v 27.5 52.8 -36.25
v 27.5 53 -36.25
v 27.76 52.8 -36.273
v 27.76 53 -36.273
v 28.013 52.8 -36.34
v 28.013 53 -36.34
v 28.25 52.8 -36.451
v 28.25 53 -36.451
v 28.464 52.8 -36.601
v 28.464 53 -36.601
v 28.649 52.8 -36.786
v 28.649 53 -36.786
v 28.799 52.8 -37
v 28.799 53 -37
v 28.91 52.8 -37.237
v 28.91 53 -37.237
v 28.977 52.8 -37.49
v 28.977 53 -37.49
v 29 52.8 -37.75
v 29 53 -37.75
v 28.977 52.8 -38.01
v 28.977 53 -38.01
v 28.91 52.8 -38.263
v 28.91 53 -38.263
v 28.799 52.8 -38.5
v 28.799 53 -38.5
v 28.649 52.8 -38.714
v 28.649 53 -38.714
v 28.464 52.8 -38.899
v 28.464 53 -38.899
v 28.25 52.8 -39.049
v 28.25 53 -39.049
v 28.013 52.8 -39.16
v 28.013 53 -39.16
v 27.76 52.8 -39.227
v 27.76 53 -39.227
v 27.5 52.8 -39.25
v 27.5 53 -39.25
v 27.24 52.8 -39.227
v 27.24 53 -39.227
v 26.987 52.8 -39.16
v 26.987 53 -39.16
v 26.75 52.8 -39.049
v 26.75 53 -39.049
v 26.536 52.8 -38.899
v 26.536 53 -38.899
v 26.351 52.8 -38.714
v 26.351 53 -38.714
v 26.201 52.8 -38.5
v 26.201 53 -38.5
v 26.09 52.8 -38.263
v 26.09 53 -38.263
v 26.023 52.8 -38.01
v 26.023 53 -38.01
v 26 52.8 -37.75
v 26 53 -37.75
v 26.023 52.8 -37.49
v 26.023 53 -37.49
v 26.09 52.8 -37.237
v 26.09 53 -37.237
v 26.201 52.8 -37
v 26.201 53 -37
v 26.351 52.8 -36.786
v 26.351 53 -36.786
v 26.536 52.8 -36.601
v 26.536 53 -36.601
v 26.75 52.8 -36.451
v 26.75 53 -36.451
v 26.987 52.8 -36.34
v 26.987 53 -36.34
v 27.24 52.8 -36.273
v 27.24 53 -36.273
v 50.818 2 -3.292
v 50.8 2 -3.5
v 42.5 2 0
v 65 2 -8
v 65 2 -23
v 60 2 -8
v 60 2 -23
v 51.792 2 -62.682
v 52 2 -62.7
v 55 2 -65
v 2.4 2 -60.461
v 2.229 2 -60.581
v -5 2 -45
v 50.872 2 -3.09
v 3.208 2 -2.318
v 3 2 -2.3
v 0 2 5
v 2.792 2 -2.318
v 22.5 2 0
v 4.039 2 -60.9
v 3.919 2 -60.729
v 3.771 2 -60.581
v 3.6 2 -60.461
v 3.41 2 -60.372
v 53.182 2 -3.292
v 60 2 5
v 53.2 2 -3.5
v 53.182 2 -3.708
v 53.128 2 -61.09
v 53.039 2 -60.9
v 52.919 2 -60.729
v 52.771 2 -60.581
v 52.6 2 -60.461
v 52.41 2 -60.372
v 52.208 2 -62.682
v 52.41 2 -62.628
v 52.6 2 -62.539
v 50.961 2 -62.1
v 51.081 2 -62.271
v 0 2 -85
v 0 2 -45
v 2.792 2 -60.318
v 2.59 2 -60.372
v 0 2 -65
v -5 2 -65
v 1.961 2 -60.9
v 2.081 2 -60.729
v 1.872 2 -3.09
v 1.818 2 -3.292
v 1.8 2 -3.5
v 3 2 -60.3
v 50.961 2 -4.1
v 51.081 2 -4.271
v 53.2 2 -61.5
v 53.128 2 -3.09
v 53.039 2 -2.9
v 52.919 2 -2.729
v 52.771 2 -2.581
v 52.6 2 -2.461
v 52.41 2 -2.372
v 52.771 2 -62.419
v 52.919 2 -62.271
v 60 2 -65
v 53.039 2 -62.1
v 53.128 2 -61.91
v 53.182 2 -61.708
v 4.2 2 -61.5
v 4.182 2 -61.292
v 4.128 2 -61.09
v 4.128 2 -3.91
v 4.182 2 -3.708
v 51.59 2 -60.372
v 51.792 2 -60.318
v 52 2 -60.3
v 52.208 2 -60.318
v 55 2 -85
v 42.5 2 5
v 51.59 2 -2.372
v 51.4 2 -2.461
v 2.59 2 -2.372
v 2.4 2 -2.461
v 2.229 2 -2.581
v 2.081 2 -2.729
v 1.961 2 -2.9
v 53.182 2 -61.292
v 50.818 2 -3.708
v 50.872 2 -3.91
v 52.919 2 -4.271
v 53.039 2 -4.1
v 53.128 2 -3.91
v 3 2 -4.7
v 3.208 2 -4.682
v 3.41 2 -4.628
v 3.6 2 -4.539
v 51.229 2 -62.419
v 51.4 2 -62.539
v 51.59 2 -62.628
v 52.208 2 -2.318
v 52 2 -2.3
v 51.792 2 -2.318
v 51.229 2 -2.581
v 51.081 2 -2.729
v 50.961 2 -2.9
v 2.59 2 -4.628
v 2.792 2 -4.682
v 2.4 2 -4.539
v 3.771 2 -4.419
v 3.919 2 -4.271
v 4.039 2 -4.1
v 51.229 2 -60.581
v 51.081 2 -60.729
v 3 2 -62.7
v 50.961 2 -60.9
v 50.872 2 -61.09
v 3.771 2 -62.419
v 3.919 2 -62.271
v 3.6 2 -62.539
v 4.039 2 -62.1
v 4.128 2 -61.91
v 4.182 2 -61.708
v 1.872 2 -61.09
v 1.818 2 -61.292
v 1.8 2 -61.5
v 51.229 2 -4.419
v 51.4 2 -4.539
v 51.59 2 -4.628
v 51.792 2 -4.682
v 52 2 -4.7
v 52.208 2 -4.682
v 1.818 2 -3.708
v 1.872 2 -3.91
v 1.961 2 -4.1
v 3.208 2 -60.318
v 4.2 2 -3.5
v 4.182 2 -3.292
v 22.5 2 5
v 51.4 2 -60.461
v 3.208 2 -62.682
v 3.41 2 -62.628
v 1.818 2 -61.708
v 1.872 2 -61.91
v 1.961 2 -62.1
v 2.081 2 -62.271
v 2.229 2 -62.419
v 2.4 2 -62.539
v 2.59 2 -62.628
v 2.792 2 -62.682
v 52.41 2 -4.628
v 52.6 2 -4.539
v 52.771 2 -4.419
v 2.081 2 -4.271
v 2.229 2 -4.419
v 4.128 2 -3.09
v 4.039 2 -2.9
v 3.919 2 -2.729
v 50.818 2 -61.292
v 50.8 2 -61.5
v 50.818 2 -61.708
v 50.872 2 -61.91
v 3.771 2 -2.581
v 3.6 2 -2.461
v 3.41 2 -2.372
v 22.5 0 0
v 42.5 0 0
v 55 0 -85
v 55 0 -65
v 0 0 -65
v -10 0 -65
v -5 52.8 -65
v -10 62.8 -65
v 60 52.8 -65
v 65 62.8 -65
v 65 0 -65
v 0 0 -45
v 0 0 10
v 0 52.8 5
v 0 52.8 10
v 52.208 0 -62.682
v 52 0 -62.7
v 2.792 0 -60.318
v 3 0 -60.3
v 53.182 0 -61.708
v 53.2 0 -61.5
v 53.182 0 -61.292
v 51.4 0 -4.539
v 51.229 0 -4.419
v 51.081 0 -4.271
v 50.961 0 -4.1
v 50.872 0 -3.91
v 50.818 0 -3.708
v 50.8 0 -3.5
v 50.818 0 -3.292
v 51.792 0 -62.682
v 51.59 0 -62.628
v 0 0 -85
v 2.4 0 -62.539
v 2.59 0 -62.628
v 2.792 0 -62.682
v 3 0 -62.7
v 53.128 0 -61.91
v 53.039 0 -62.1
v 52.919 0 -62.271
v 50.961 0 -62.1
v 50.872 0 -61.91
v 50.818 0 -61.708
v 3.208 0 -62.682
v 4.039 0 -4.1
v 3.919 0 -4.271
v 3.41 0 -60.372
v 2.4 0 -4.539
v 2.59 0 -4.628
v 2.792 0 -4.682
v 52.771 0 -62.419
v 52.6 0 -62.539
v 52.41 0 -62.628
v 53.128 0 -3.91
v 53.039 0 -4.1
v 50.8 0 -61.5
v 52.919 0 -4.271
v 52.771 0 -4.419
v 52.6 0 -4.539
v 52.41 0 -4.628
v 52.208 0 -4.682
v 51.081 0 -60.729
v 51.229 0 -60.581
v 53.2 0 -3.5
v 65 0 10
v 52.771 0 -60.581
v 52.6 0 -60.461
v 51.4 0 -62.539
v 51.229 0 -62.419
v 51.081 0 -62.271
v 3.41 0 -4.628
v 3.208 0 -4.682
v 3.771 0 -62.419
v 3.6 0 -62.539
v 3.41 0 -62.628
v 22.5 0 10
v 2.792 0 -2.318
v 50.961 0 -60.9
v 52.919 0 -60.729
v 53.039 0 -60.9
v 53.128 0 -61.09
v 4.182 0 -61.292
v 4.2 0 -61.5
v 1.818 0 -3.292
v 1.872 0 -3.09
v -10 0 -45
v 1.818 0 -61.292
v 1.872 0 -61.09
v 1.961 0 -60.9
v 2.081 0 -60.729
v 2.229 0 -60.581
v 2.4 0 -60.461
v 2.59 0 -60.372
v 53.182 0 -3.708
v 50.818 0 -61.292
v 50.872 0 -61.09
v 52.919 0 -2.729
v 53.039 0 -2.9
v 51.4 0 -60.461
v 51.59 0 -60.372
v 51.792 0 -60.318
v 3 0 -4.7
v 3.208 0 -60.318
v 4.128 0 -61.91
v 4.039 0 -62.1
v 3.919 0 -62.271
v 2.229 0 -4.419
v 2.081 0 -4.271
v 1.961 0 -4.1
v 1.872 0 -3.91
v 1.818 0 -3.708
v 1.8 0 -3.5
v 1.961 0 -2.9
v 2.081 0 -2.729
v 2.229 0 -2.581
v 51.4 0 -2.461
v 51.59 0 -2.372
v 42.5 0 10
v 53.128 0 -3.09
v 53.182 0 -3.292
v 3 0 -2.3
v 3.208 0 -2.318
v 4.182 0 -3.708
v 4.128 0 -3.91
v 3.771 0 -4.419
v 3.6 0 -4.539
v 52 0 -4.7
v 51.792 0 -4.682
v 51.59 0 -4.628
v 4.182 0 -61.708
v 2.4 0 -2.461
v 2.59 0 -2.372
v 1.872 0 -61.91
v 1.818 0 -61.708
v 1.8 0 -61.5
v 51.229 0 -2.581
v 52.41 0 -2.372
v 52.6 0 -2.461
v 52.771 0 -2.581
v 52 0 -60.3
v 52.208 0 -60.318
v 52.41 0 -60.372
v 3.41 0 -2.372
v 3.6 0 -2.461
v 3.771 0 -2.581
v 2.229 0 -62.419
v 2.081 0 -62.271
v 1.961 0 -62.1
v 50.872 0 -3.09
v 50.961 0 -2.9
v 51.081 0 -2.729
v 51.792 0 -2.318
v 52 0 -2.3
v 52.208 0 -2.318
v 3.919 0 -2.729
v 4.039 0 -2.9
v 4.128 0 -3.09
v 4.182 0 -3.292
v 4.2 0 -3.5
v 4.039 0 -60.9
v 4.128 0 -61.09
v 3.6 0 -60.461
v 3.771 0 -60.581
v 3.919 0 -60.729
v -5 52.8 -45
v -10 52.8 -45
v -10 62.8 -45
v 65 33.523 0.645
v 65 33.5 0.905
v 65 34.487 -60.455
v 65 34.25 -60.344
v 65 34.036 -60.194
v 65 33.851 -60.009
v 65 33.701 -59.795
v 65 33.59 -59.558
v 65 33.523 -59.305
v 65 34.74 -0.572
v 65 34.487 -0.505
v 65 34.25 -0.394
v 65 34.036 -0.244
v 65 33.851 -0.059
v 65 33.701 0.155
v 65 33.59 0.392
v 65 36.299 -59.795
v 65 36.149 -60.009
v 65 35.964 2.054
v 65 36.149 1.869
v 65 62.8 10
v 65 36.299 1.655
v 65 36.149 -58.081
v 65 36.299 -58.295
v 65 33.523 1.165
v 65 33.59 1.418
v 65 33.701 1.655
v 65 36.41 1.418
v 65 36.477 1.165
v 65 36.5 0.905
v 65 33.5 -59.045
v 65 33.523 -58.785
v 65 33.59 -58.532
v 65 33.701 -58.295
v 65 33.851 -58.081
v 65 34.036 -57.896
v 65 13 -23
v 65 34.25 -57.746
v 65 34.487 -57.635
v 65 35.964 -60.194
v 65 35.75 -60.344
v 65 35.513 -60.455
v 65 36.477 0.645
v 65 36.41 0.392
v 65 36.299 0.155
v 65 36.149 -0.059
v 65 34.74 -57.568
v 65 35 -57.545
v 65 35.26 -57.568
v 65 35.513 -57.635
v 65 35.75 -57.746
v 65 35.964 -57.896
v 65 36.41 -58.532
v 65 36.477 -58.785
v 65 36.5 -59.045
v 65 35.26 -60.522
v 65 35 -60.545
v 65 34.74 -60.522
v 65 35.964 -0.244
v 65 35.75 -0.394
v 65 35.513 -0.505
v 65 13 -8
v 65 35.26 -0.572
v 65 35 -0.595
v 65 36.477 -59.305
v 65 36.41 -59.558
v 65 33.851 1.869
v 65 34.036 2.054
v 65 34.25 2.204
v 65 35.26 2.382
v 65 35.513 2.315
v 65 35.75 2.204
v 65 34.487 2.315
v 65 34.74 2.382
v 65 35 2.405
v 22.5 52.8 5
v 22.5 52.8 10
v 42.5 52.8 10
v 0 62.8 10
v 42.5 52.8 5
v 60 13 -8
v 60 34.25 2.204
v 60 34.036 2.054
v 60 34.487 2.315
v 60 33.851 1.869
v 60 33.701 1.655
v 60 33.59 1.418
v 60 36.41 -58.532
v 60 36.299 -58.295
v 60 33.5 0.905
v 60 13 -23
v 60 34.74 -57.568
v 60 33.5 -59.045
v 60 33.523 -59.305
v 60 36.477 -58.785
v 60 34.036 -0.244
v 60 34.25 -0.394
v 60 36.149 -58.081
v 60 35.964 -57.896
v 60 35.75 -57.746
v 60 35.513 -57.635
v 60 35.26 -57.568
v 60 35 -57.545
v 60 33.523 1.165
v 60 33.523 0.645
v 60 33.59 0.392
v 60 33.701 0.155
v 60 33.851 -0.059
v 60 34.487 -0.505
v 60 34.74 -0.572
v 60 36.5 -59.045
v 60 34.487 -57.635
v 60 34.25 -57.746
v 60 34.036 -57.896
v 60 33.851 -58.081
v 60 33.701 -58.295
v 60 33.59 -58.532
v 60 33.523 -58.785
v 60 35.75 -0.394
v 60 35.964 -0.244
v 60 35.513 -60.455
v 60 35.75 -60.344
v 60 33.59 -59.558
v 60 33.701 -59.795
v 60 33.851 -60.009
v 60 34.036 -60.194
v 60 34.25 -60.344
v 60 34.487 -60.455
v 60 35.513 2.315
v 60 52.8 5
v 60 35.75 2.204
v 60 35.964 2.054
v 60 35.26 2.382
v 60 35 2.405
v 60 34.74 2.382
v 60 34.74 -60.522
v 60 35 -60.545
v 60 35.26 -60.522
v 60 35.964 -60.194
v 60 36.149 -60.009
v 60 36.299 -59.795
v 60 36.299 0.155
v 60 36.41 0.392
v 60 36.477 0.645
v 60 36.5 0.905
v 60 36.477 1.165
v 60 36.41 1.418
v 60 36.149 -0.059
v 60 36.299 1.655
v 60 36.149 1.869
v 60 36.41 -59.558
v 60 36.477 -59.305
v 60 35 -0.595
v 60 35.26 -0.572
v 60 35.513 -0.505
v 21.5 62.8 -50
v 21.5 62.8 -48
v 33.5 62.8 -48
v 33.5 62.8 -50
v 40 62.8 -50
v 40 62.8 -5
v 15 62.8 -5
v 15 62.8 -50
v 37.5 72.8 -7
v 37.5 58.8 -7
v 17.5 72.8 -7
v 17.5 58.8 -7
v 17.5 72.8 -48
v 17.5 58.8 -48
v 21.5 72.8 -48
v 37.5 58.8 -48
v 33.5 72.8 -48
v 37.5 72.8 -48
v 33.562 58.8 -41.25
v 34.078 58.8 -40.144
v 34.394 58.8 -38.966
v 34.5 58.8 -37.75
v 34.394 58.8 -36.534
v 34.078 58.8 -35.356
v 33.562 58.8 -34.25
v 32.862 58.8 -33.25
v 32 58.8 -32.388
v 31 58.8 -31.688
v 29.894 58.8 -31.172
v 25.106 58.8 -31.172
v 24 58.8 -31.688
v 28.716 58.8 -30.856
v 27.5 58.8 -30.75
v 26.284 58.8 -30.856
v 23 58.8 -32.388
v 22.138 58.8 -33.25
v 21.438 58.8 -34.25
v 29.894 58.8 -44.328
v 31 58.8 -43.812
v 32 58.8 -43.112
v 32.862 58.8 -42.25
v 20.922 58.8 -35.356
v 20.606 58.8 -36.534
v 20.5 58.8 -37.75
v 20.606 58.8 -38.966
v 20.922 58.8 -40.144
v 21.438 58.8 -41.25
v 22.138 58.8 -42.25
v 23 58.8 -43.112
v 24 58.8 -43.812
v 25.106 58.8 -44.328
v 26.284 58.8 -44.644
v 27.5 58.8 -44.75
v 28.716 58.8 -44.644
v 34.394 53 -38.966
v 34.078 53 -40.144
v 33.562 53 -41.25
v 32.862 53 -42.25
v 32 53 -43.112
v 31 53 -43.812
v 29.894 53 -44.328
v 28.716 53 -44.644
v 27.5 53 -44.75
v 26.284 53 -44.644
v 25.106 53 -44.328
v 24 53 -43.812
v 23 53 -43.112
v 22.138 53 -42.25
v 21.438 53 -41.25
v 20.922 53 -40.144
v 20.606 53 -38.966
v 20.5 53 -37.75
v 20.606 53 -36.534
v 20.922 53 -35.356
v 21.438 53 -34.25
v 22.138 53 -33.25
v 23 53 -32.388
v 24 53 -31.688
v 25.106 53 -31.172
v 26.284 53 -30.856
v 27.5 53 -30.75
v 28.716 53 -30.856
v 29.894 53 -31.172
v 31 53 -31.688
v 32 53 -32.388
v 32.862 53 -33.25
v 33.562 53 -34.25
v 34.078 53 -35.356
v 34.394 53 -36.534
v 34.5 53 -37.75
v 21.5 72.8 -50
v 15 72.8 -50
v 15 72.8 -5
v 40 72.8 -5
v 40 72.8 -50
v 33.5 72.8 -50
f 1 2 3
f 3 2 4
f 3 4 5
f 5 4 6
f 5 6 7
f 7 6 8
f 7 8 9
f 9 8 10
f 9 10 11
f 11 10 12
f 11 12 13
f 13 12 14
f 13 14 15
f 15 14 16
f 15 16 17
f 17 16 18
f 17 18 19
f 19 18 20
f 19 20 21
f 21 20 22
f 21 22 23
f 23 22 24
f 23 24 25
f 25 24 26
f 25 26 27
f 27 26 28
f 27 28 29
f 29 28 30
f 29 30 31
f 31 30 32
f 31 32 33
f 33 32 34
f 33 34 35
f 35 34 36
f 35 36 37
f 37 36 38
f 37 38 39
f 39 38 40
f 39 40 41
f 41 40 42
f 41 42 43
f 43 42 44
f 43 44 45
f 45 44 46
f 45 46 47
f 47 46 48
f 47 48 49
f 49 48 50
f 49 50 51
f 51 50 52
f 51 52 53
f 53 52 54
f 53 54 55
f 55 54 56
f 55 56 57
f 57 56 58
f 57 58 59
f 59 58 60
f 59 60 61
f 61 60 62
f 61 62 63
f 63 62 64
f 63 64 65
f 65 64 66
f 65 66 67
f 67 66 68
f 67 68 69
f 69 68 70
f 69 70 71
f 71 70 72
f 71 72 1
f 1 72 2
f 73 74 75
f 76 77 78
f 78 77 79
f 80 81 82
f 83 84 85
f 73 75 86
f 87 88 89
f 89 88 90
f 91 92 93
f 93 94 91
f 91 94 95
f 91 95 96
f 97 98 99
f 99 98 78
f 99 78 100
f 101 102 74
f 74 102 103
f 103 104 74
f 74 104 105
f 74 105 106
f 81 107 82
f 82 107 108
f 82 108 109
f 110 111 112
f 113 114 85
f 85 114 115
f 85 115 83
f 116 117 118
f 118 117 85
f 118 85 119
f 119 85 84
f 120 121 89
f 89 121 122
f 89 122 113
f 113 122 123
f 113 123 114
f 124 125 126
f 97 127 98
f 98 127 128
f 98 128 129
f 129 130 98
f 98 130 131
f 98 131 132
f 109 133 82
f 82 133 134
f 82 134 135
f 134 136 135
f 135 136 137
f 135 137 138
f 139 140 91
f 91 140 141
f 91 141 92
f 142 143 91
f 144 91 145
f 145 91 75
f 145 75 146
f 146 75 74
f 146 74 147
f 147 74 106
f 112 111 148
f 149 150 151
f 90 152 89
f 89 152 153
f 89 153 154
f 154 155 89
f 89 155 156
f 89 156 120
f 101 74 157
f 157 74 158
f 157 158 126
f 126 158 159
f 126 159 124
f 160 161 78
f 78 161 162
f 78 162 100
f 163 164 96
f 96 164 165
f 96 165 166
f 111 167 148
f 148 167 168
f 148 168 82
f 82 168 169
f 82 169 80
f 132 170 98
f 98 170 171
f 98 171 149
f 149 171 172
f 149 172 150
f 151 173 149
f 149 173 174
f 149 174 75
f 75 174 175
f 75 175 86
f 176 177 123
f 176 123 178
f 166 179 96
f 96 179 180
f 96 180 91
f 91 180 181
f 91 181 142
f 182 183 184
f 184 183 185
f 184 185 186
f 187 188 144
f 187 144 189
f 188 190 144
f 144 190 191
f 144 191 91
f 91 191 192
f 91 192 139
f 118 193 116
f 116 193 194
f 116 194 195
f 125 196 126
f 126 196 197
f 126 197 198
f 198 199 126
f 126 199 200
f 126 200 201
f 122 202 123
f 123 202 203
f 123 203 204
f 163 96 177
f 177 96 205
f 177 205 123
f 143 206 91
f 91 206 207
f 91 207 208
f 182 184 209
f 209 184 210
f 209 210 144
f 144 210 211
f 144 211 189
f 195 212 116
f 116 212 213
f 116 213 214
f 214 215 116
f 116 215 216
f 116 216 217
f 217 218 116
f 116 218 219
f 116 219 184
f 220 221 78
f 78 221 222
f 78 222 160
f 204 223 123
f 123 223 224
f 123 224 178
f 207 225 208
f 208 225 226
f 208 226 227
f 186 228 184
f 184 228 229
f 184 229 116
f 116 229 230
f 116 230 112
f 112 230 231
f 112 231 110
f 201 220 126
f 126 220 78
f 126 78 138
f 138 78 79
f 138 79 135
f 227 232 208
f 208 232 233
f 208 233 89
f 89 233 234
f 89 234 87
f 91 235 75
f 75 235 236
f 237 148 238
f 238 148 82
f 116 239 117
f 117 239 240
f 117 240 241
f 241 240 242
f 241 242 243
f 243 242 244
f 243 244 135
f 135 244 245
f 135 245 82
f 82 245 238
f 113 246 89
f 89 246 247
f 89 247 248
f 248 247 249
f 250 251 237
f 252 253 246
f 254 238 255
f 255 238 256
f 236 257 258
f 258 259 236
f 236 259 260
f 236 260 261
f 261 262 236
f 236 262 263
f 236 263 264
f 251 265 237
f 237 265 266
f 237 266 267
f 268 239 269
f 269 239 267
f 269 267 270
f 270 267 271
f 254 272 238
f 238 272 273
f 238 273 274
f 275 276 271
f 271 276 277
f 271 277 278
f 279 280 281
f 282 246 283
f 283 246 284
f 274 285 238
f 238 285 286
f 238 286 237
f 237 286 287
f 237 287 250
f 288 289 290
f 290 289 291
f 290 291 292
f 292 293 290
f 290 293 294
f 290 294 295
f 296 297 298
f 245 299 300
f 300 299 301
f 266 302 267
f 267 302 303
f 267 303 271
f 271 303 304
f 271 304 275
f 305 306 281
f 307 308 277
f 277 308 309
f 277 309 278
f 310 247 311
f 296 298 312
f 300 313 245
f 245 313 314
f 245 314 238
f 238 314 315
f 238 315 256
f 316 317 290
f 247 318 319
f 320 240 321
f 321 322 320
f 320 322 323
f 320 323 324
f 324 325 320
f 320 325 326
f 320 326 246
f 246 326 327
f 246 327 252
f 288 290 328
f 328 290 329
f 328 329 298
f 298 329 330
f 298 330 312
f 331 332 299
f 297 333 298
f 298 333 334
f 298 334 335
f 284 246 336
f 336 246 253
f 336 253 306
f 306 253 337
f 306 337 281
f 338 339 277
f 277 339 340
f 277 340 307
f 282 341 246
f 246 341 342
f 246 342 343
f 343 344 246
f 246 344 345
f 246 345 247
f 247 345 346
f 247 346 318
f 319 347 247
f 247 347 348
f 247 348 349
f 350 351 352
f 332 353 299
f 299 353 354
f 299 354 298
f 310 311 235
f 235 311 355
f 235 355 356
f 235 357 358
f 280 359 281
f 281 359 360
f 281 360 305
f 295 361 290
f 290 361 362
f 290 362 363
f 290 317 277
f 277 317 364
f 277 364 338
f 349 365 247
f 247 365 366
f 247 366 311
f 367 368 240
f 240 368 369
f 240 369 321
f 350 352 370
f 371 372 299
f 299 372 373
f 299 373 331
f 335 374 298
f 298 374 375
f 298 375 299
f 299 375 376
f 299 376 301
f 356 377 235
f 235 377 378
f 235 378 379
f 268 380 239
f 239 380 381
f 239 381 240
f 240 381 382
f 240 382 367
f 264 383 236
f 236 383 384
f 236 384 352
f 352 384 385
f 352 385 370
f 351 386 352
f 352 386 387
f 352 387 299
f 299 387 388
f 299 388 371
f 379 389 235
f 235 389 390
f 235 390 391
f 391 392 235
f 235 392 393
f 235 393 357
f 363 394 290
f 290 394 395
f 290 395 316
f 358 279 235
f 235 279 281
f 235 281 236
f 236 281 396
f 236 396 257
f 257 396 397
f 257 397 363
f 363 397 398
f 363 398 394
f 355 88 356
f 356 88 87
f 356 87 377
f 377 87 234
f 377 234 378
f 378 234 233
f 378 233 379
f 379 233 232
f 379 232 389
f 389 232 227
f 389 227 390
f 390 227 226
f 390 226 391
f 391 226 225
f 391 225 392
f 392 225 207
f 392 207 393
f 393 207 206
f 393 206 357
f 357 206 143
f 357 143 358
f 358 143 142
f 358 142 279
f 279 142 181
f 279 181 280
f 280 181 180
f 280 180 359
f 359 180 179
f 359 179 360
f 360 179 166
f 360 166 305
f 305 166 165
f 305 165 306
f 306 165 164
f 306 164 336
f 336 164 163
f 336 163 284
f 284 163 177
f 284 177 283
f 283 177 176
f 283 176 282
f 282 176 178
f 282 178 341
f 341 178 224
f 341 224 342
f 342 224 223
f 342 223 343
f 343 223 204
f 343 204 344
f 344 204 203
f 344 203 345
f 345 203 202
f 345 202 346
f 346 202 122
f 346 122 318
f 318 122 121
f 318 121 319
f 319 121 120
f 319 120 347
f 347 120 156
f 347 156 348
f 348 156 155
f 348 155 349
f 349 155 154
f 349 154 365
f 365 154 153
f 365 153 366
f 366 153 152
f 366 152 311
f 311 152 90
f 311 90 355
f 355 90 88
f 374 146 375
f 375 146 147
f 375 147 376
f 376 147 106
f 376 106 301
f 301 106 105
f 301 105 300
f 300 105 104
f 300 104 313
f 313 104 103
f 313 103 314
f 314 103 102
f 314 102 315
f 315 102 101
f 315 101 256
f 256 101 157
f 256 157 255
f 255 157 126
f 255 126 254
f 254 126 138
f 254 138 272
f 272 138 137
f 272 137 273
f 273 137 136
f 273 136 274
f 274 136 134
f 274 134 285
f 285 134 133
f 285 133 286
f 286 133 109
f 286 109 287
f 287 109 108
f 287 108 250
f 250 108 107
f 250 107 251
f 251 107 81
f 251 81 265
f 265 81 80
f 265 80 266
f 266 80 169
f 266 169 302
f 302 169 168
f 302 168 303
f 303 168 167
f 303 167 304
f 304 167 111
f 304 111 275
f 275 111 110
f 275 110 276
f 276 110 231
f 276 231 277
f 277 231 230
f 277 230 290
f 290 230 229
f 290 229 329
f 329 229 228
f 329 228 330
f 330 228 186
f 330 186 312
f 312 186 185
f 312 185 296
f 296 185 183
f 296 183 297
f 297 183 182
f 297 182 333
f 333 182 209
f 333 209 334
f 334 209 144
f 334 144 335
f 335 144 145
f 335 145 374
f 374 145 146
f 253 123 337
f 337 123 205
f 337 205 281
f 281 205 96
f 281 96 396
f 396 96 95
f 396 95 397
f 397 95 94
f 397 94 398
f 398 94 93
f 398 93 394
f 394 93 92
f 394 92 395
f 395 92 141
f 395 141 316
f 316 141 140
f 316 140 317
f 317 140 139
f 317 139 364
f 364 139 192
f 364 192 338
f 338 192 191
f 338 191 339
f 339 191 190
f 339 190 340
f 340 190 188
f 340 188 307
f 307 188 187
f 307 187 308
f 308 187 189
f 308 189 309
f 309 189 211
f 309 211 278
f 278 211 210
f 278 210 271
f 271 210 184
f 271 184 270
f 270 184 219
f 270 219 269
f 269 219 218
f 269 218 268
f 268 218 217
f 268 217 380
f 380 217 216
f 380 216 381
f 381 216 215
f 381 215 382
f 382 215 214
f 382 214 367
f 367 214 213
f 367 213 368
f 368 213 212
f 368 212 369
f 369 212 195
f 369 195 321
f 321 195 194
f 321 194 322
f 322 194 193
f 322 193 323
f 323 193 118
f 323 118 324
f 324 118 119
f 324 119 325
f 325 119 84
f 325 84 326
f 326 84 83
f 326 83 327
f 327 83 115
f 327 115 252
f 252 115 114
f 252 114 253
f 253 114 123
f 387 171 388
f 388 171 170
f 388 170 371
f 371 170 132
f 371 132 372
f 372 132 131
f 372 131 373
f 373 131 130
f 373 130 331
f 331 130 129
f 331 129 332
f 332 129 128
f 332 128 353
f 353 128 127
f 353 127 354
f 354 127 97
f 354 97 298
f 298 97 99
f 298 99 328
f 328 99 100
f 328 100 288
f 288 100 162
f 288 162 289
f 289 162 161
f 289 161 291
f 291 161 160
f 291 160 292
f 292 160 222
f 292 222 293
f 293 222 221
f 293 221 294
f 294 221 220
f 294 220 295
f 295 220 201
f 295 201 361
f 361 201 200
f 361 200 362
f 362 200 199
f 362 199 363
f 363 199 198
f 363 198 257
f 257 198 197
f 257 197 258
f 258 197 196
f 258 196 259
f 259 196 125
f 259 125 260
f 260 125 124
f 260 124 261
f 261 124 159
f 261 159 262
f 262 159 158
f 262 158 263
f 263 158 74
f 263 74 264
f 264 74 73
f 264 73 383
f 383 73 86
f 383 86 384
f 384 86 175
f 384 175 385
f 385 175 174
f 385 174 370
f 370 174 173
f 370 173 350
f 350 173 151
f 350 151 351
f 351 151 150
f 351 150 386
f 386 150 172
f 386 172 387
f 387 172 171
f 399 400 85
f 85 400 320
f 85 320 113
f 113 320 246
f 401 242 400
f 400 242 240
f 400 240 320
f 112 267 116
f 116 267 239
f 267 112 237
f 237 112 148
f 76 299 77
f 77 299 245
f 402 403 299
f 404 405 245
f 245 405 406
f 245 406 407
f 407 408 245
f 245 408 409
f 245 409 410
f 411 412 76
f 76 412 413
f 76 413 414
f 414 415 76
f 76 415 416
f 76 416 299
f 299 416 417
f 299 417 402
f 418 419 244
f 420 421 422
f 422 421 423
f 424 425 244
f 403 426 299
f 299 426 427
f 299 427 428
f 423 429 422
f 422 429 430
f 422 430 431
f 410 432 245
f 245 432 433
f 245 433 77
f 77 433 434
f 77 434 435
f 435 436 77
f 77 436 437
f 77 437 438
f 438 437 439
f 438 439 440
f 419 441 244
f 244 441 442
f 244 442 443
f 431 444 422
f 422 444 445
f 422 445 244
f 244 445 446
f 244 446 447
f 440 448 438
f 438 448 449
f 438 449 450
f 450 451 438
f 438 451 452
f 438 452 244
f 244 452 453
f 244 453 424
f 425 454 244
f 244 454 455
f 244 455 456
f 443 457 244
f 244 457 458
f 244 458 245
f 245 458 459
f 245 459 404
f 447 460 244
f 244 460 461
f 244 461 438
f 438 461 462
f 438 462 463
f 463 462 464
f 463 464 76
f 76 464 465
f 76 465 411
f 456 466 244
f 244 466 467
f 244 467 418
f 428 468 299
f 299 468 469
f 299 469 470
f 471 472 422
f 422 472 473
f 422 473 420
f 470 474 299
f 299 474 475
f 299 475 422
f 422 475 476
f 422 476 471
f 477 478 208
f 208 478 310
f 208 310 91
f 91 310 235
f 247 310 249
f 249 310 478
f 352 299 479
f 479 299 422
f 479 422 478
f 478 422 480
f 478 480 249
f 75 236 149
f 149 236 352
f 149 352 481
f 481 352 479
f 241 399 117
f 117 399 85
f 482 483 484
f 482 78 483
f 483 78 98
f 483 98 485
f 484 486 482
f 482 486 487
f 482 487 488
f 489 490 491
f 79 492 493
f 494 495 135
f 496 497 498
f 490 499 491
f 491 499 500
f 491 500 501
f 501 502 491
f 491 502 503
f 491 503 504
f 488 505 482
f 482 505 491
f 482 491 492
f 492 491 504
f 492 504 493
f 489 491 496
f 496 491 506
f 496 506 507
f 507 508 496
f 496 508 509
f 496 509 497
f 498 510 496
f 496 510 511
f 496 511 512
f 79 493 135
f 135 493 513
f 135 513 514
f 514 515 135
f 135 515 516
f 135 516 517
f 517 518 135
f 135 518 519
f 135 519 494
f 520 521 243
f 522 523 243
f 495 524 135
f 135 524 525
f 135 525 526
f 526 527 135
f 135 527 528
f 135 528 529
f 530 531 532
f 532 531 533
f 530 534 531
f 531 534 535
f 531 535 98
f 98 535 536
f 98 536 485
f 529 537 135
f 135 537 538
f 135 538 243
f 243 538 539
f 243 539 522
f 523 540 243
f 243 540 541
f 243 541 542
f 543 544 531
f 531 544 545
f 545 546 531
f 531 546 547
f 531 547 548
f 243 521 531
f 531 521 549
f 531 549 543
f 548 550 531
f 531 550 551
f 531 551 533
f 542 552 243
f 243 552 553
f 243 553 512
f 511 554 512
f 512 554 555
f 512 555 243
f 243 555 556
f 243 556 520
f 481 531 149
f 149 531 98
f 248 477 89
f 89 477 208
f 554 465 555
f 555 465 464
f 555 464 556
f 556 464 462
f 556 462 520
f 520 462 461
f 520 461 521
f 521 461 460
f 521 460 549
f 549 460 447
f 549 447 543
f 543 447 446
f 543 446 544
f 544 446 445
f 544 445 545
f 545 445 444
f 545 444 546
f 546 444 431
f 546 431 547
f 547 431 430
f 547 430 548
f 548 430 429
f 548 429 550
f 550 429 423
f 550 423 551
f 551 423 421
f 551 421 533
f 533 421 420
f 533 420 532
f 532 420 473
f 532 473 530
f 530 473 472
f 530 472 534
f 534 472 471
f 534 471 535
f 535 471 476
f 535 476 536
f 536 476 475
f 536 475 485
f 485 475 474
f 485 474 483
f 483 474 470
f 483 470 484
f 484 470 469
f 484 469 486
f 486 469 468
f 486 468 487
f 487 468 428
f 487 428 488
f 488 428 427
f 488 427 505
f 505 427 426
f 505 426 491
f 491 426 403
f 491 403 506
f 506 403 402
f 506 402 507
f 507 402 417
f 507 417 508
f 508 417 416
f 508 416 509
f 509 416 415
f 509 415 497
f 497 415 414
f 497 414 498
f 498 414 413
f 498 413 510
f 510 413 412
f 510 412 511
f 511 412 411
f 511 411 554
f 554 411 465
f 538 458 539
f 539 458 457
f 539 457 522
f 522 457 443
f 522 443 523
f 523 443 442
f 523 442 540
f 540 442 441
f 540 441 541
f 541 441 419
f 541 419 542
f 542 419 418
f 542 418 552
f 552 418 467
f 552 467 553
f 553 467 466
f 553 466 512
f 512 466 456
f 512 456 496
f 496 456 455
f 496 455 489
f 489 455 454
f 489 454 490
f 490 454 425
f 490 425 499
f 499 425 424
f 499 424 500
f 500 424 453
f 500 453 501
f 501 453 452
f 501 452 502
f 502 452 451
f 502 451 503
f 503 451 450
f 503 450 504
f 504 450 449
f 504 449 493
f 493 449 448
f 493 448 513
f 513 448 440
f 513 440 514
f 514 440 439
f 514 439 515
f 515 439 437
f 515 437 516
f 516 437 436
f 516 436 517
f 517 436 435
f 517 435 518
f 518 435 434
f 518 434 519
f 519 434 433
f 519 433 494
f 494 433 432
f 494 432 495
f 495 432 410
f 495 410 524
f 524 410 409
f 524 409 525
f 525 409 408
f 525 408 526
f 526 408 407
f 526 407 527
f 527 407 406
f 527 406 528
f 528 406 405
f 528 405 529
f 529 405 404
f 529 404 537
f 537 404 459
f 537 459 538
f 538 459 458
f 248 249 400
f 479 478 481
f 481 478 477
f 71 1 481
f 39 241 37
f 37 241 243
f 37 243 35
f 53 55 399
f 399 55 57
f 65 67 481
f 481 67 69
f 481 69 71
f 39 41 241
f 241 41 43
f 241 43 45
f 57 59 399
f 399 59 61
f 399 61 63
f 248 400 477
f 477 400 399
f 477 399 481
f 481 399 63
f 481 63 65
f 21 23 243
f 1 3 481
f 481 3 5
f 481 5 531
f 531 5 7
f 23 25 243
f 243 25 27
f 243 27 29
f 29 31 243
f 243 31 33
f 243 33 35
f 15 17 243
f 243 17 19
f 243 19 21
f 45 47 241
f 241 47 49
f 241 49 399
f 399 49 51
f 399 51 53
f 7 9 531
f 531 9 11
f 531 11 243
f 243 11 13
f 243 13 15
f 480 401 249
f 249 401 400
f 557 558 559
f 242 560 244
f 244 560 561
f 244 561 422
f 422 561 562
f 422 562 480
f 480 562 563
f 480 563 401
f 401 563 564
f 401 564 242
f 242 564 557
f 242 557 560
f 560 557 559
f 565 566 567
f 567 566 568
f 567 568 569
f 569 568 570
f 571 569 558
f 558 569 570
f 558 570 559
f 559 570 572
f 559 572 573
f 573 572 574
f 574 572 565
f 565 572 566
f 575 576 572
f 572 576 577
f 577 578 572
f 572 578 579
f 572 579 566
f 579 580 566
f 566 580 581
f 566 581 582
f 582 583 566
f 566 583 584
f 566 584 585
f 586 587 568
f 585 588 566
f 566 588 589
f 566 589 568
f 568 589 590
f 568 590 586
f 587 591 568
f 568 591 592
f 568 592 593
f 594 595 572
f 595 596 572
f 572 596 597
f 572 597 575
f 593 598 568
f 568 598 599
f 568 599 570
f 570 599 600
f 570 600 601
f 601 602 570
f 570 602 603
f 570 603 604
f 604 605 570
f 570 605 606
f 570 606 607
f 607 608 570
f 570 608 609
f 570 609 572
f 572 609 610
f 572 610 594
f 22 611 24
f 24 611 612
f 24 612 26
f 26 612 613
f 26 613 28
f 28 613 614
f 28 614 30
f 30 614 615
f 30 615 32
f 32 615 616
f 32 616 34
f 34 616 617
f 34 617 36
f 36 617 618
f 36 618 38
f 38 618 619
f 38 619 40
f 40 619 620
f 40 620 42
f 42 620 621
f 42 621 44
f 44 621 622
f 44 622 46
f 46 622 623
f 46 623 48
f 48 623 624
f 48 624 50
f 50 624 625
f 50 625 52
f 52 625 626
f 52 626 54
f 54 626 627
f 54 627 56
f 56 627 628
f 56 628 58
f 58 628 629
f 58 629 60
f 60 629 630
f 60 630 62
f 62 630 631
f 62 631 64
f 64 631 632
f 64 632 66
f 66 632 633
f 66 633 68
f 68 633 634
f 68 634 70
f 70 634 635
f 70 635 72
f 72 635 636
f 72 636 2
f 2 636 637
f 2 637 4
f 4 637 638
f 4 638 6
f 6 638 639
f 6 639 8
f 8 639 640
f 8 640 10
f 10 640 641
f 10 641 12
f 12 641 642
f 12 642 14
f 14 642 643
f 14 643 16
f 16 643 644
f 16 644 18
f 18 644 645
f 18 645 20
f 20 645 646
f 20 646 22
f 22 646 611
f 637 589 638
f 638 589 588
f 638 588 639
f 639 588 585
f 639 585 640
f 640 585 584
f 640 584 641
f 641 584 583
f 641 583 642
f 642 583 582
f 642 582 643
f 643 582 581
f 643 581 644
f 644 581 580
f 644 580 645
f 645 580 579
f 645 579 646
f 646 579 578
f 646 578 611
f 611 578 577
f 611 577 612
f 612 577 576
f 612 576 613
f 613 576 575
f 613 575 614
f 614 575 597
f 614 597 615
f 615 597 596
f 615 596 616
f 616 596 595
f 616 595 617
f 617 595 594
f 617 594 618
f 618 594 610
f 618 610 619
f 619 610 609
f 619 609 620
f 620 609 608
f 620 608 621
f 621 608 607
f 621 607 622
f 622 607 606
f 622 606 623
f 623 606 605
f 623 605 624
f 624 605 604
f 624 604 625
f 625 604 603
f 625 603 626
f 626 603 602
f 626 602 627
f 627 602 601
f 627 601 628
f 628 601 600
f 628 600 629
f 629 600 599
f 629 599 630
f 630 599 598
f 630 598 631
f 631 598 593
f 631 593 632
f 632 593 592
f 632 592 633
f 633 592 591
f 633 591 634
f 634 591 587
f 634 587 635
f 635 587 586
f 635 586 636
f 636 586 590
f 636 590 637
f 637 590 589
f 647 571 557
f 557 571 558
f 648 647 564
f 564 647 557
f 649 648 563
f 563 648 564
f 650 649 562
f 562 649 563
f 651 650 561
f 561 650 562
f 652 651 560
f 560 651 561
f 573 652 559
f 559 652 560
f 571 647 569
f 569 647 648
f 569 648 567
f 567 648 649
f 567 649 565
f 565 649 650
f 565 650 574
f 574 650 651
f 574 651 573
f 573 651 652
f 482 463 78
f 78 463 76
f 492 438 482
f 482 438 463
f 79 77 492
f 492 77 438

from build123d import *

# Parameters (mm, degrees)
SKETCH1_W                  = 55
SKETCH1_H                  = 65
BASE_DEPTH                 = 2
SKETCH2_R                  = 1.2
PIMOUNTSCREWHOLES_DEPTH    = 2
SKETCH3_W                  = 20
SKETCH3_H                  = 2
PLATELEGEXT_1_DEPTH        = 10
SKETCH19_W                 = 55
SKETCH19_H                 = 2
PIFRONTBASE_DEPTH          = 20
SKETCH21_W                 = 65
SKETCH21_H                 = 2
BATTERYWALL_EXT_DEPTH      = 10
SKETCH22_W                 = 22.5
SKETCH22_H                 = 2
SKETCH22_W_2               = 12.5
PLATELEGEXT_2_DEPTH        = 10
SKETCH30_W                 = 10
SKETCH30_H                 = 2
CORNEREXTENSION_DEPTH      = 10
SKETCH23_W                 = 22.5
SKETCH23_H                 = 5
SKETCH23_W_2               = 5
SKETCH23_H_2               = 20
PLATELEGS_DEPTH            = 50.8
SKETCH29_R                 = 1.5
BATTERY_SCREWHOLES_DEPTH   = 5
ROTATORPLATE_DEPTH         = 10
SKETCH25_W                 = 20
SKETCH25_H                 = 41
INSET_SERVO_DEPTH          = 4
SKETCH26_R                 = 1.5
HOLE_SERVOSCREW_DEPTH      = 6
SKETCH27_R                 = 7
INSET_SERVOAXLE_DEPTH      = 5.8
RETAININGWALLS_SERVO_DEPTH = 10
SKETCH31_W                 = 15
SKETCH31_H                 = 11
POWER_HOLE_DEPTH           = 5


with BuildPart() as part:
    # Sketch1 → Base (new body)
    with BuildSketch(Plane(origin=(0, 0, 0), x_dir=(1, 0, 0), z_dir=(0, 1, 0))):
        with Locations((27.5, 32.5)):
            Rectangle(SKETCH1_W, SKETCH1_H)
    extrude(amount=BASE_DEPTH)

    # Sketch2 → PiMountScrewHoles (cut)
    with BuildSketch(Plane(origin=(0, 2, 0), x_dir=(1, 0, 0), z_dir=(0, 1, 0))):
        with Locations(Location((3, 3.5, 0), (0, 0, 270))):
            Circle(SKETCH2_R)
        with Locations(Location((52, 3.5, 0), (0, 0, 270))):
            Circle(SKETCH2_R)
        with Locations(Location((3, 61.5, 0), (0, 0, 270))):
            Circle(SKETCH2_R)
        with Locations(Location((52, 61.5, 0), (0, 0, 270))):
            Circle(SKETCH2_R)
    extrude(amount=-PIMOUNTSCREWHOLES_DEPTH, mode=Mode.SUBTRACT)

    # Sketch3 → PlateLegExt-1 (add)
    with BuildSketch(Plane.ZY):
        with Locations((-55, 1)):
            Rectangle(SKETCH3_W, SKETCH3_H)
    extrude(amount=PLATELEGEXT_1_DEPTH)

    # Sketch19 → PiFrontBase (add)
    with BuildSketch(Plane(origin=(0, 0, -65), x_dir=(-1, 0, 0), z_dir=(0, 0, -1))):
        with Locations((-27.5, 1)):
            Rectangle(SKETCH19_W, SKETCH19_H)
    extrude(amount=PIFRONTBASE_DEPTH)

    # Sketch21 → BatteryWall-Ext (add)
    with BuildSketch(Plane(origin=(55, 0, 0), x_dir=(0, 0, -1), z_dir=(1, 0, 0))):
        with Locations((32.5, 1)):
            Rectangle(SKETCH21_W, SKETCH21_H)
    extrude(amount=BATTERYWALL_EXT_DEPTH)

    # Sketch22 → PlateLegExt-2 (add)
    with BuildSketch(Plane.XY):
        with Locations((11.25, 1)):
            Rectangle(SKETCH22_W, SKETCH22_H)
        with Locations((48.75, 1)):
            Rectangle(SKETCH22_W_2, SKETCH22_H)
    extrude(amount=PLATELEGEXT_2_DEPTH)

    # Sketch30 → CornerExtension (add)
    with BuildSketch(Plane(origin=(55, 0, 0), x_dir=(0, 0, -1), z_dir=(1, 0, 0))):
        with Locations((-5, 1)):
            Rectangle(SKETCH30_W, SKETCH30_H)
    extrude(amount=CORNEREXTENSION_DEPTH)

    # Sketch23 → PlateLegs (add)
    with BuildSketch(Plane(origin=(0, 2, 0), x_dir=(1, 0, 0), z_dir=(0, 1, 0))):
        with Locations((11.25, -7.5)):
            Rectangle(SKETCH23_W, SKETCH23_H)
        with Locations((-7.5, 55)):
            Rectangle(SKETCH23_W_2, SKETCH23_H_2)
        Polygon((60, 65), (65, 65), (65, -10), (42.5, -10), (42.5, -5), (60, -5), align=None)
    extrude(amount=PLATELEGS_DEPTH)

    # Sketch29 → Battery-ScrewHoles (cut)
    with BuildSketch(Plane(origin=(65, 0, 0), x_dir=(0, 0, -1), z_dir=(1, 0, 0))):
        with Locations((59.045, 35)):
            Circle(SKETCH29_R)
        with Locations((-0.905, 35)):
            Circle(SKETCH29_R)
    extrude(amount=-BATTERY_SCREWHOLES_DEPTH, mode=Mode.SUBTRACT)

    # Sketch24 → RotatorPlate (add)
    with BuildSketch(Plane(origin=(0, 52.8, 0), x_dir=(1, 0, 0), z_dir=(0, 1, 0))):
        Polygon((0, -10), (65, -10), (65, 65), (-10, 65), (-10, 45), align=None)
    extrude(amount=ROTATORPLATE_DEPTH)

    # Sketch25 → Inset-Servo (cut)
    with BuildSketch(Plane(origin=(0, 62.8, 0), x_dir=(1, 0, 0), z_dir=(0, 1, 0))):
        with Locations((27.5, 27.5)):
            Rectangle(SKETCH25_W, SKETCH25_H)
    extrude(amount=-INSET_SERVO_DEPTH, mode=Mode.SUBTRACT)

    # Sketch26 → Hole-ServoScrew (cut)
    with BuildSketch(Plane(origin=(0, 58.8, 0), x_dir=(1, 0, 0), z_dir=(0, 1, 0))):
        with Locations(Location((27.5, 37.75, 0), (0, 0, 270))):
            Circle(SKETCH26_R)
    extrude(amount=-HOLE_SERVOSCREW_DEPTH, mode=Mode.SUBTRACT)

    # Sketch27 → Inset-ServoAxle (cut)
    with BuildSketch(Plane(origin=(0, 58.8, 0), x_dir=(1, 0, 0), z_dir=(0, 1, 0))):
        with Locations(Location((27.5, 37.75, 0), (0, 0, 270))):
            Circle(SKETCH27_R)
    extrude(amount=-INSET_SERVOAXLE_DEPTH, mode=Mode.SUBTRACT)

    # Sketch28 → RetainingWalls-Servo (add)
    with BuildSketch(Plane(origin=(0, 62.8, 0), x_dir=(1, 0, 0), z_dir=(0, 1, 0))):
        Polygon((37.5, 48), (33.5, 48), (33.5, 50), (40, 50), (40, 5), (15, 5), (15, 50), (21.5, 50), (21.5, 48), (17.5, 48), (17.5, 7), (37.5, 7), align=None)
    extrude(amount=RETAININGWALLS_SERVO_DEPTH)

    # Sketch31 → Power-Hole (cut)
    with BuildSketch(Plane.ZY.offset(-60)):
        with Locations((-15.5, 7.5)):
            Rectangle(SKETCH31_W, SKETCH31_H)
    extrude(amount=-POWER_HOLE_DEPTH, mode=Mode.SUBTRACT)


solid = part.part
